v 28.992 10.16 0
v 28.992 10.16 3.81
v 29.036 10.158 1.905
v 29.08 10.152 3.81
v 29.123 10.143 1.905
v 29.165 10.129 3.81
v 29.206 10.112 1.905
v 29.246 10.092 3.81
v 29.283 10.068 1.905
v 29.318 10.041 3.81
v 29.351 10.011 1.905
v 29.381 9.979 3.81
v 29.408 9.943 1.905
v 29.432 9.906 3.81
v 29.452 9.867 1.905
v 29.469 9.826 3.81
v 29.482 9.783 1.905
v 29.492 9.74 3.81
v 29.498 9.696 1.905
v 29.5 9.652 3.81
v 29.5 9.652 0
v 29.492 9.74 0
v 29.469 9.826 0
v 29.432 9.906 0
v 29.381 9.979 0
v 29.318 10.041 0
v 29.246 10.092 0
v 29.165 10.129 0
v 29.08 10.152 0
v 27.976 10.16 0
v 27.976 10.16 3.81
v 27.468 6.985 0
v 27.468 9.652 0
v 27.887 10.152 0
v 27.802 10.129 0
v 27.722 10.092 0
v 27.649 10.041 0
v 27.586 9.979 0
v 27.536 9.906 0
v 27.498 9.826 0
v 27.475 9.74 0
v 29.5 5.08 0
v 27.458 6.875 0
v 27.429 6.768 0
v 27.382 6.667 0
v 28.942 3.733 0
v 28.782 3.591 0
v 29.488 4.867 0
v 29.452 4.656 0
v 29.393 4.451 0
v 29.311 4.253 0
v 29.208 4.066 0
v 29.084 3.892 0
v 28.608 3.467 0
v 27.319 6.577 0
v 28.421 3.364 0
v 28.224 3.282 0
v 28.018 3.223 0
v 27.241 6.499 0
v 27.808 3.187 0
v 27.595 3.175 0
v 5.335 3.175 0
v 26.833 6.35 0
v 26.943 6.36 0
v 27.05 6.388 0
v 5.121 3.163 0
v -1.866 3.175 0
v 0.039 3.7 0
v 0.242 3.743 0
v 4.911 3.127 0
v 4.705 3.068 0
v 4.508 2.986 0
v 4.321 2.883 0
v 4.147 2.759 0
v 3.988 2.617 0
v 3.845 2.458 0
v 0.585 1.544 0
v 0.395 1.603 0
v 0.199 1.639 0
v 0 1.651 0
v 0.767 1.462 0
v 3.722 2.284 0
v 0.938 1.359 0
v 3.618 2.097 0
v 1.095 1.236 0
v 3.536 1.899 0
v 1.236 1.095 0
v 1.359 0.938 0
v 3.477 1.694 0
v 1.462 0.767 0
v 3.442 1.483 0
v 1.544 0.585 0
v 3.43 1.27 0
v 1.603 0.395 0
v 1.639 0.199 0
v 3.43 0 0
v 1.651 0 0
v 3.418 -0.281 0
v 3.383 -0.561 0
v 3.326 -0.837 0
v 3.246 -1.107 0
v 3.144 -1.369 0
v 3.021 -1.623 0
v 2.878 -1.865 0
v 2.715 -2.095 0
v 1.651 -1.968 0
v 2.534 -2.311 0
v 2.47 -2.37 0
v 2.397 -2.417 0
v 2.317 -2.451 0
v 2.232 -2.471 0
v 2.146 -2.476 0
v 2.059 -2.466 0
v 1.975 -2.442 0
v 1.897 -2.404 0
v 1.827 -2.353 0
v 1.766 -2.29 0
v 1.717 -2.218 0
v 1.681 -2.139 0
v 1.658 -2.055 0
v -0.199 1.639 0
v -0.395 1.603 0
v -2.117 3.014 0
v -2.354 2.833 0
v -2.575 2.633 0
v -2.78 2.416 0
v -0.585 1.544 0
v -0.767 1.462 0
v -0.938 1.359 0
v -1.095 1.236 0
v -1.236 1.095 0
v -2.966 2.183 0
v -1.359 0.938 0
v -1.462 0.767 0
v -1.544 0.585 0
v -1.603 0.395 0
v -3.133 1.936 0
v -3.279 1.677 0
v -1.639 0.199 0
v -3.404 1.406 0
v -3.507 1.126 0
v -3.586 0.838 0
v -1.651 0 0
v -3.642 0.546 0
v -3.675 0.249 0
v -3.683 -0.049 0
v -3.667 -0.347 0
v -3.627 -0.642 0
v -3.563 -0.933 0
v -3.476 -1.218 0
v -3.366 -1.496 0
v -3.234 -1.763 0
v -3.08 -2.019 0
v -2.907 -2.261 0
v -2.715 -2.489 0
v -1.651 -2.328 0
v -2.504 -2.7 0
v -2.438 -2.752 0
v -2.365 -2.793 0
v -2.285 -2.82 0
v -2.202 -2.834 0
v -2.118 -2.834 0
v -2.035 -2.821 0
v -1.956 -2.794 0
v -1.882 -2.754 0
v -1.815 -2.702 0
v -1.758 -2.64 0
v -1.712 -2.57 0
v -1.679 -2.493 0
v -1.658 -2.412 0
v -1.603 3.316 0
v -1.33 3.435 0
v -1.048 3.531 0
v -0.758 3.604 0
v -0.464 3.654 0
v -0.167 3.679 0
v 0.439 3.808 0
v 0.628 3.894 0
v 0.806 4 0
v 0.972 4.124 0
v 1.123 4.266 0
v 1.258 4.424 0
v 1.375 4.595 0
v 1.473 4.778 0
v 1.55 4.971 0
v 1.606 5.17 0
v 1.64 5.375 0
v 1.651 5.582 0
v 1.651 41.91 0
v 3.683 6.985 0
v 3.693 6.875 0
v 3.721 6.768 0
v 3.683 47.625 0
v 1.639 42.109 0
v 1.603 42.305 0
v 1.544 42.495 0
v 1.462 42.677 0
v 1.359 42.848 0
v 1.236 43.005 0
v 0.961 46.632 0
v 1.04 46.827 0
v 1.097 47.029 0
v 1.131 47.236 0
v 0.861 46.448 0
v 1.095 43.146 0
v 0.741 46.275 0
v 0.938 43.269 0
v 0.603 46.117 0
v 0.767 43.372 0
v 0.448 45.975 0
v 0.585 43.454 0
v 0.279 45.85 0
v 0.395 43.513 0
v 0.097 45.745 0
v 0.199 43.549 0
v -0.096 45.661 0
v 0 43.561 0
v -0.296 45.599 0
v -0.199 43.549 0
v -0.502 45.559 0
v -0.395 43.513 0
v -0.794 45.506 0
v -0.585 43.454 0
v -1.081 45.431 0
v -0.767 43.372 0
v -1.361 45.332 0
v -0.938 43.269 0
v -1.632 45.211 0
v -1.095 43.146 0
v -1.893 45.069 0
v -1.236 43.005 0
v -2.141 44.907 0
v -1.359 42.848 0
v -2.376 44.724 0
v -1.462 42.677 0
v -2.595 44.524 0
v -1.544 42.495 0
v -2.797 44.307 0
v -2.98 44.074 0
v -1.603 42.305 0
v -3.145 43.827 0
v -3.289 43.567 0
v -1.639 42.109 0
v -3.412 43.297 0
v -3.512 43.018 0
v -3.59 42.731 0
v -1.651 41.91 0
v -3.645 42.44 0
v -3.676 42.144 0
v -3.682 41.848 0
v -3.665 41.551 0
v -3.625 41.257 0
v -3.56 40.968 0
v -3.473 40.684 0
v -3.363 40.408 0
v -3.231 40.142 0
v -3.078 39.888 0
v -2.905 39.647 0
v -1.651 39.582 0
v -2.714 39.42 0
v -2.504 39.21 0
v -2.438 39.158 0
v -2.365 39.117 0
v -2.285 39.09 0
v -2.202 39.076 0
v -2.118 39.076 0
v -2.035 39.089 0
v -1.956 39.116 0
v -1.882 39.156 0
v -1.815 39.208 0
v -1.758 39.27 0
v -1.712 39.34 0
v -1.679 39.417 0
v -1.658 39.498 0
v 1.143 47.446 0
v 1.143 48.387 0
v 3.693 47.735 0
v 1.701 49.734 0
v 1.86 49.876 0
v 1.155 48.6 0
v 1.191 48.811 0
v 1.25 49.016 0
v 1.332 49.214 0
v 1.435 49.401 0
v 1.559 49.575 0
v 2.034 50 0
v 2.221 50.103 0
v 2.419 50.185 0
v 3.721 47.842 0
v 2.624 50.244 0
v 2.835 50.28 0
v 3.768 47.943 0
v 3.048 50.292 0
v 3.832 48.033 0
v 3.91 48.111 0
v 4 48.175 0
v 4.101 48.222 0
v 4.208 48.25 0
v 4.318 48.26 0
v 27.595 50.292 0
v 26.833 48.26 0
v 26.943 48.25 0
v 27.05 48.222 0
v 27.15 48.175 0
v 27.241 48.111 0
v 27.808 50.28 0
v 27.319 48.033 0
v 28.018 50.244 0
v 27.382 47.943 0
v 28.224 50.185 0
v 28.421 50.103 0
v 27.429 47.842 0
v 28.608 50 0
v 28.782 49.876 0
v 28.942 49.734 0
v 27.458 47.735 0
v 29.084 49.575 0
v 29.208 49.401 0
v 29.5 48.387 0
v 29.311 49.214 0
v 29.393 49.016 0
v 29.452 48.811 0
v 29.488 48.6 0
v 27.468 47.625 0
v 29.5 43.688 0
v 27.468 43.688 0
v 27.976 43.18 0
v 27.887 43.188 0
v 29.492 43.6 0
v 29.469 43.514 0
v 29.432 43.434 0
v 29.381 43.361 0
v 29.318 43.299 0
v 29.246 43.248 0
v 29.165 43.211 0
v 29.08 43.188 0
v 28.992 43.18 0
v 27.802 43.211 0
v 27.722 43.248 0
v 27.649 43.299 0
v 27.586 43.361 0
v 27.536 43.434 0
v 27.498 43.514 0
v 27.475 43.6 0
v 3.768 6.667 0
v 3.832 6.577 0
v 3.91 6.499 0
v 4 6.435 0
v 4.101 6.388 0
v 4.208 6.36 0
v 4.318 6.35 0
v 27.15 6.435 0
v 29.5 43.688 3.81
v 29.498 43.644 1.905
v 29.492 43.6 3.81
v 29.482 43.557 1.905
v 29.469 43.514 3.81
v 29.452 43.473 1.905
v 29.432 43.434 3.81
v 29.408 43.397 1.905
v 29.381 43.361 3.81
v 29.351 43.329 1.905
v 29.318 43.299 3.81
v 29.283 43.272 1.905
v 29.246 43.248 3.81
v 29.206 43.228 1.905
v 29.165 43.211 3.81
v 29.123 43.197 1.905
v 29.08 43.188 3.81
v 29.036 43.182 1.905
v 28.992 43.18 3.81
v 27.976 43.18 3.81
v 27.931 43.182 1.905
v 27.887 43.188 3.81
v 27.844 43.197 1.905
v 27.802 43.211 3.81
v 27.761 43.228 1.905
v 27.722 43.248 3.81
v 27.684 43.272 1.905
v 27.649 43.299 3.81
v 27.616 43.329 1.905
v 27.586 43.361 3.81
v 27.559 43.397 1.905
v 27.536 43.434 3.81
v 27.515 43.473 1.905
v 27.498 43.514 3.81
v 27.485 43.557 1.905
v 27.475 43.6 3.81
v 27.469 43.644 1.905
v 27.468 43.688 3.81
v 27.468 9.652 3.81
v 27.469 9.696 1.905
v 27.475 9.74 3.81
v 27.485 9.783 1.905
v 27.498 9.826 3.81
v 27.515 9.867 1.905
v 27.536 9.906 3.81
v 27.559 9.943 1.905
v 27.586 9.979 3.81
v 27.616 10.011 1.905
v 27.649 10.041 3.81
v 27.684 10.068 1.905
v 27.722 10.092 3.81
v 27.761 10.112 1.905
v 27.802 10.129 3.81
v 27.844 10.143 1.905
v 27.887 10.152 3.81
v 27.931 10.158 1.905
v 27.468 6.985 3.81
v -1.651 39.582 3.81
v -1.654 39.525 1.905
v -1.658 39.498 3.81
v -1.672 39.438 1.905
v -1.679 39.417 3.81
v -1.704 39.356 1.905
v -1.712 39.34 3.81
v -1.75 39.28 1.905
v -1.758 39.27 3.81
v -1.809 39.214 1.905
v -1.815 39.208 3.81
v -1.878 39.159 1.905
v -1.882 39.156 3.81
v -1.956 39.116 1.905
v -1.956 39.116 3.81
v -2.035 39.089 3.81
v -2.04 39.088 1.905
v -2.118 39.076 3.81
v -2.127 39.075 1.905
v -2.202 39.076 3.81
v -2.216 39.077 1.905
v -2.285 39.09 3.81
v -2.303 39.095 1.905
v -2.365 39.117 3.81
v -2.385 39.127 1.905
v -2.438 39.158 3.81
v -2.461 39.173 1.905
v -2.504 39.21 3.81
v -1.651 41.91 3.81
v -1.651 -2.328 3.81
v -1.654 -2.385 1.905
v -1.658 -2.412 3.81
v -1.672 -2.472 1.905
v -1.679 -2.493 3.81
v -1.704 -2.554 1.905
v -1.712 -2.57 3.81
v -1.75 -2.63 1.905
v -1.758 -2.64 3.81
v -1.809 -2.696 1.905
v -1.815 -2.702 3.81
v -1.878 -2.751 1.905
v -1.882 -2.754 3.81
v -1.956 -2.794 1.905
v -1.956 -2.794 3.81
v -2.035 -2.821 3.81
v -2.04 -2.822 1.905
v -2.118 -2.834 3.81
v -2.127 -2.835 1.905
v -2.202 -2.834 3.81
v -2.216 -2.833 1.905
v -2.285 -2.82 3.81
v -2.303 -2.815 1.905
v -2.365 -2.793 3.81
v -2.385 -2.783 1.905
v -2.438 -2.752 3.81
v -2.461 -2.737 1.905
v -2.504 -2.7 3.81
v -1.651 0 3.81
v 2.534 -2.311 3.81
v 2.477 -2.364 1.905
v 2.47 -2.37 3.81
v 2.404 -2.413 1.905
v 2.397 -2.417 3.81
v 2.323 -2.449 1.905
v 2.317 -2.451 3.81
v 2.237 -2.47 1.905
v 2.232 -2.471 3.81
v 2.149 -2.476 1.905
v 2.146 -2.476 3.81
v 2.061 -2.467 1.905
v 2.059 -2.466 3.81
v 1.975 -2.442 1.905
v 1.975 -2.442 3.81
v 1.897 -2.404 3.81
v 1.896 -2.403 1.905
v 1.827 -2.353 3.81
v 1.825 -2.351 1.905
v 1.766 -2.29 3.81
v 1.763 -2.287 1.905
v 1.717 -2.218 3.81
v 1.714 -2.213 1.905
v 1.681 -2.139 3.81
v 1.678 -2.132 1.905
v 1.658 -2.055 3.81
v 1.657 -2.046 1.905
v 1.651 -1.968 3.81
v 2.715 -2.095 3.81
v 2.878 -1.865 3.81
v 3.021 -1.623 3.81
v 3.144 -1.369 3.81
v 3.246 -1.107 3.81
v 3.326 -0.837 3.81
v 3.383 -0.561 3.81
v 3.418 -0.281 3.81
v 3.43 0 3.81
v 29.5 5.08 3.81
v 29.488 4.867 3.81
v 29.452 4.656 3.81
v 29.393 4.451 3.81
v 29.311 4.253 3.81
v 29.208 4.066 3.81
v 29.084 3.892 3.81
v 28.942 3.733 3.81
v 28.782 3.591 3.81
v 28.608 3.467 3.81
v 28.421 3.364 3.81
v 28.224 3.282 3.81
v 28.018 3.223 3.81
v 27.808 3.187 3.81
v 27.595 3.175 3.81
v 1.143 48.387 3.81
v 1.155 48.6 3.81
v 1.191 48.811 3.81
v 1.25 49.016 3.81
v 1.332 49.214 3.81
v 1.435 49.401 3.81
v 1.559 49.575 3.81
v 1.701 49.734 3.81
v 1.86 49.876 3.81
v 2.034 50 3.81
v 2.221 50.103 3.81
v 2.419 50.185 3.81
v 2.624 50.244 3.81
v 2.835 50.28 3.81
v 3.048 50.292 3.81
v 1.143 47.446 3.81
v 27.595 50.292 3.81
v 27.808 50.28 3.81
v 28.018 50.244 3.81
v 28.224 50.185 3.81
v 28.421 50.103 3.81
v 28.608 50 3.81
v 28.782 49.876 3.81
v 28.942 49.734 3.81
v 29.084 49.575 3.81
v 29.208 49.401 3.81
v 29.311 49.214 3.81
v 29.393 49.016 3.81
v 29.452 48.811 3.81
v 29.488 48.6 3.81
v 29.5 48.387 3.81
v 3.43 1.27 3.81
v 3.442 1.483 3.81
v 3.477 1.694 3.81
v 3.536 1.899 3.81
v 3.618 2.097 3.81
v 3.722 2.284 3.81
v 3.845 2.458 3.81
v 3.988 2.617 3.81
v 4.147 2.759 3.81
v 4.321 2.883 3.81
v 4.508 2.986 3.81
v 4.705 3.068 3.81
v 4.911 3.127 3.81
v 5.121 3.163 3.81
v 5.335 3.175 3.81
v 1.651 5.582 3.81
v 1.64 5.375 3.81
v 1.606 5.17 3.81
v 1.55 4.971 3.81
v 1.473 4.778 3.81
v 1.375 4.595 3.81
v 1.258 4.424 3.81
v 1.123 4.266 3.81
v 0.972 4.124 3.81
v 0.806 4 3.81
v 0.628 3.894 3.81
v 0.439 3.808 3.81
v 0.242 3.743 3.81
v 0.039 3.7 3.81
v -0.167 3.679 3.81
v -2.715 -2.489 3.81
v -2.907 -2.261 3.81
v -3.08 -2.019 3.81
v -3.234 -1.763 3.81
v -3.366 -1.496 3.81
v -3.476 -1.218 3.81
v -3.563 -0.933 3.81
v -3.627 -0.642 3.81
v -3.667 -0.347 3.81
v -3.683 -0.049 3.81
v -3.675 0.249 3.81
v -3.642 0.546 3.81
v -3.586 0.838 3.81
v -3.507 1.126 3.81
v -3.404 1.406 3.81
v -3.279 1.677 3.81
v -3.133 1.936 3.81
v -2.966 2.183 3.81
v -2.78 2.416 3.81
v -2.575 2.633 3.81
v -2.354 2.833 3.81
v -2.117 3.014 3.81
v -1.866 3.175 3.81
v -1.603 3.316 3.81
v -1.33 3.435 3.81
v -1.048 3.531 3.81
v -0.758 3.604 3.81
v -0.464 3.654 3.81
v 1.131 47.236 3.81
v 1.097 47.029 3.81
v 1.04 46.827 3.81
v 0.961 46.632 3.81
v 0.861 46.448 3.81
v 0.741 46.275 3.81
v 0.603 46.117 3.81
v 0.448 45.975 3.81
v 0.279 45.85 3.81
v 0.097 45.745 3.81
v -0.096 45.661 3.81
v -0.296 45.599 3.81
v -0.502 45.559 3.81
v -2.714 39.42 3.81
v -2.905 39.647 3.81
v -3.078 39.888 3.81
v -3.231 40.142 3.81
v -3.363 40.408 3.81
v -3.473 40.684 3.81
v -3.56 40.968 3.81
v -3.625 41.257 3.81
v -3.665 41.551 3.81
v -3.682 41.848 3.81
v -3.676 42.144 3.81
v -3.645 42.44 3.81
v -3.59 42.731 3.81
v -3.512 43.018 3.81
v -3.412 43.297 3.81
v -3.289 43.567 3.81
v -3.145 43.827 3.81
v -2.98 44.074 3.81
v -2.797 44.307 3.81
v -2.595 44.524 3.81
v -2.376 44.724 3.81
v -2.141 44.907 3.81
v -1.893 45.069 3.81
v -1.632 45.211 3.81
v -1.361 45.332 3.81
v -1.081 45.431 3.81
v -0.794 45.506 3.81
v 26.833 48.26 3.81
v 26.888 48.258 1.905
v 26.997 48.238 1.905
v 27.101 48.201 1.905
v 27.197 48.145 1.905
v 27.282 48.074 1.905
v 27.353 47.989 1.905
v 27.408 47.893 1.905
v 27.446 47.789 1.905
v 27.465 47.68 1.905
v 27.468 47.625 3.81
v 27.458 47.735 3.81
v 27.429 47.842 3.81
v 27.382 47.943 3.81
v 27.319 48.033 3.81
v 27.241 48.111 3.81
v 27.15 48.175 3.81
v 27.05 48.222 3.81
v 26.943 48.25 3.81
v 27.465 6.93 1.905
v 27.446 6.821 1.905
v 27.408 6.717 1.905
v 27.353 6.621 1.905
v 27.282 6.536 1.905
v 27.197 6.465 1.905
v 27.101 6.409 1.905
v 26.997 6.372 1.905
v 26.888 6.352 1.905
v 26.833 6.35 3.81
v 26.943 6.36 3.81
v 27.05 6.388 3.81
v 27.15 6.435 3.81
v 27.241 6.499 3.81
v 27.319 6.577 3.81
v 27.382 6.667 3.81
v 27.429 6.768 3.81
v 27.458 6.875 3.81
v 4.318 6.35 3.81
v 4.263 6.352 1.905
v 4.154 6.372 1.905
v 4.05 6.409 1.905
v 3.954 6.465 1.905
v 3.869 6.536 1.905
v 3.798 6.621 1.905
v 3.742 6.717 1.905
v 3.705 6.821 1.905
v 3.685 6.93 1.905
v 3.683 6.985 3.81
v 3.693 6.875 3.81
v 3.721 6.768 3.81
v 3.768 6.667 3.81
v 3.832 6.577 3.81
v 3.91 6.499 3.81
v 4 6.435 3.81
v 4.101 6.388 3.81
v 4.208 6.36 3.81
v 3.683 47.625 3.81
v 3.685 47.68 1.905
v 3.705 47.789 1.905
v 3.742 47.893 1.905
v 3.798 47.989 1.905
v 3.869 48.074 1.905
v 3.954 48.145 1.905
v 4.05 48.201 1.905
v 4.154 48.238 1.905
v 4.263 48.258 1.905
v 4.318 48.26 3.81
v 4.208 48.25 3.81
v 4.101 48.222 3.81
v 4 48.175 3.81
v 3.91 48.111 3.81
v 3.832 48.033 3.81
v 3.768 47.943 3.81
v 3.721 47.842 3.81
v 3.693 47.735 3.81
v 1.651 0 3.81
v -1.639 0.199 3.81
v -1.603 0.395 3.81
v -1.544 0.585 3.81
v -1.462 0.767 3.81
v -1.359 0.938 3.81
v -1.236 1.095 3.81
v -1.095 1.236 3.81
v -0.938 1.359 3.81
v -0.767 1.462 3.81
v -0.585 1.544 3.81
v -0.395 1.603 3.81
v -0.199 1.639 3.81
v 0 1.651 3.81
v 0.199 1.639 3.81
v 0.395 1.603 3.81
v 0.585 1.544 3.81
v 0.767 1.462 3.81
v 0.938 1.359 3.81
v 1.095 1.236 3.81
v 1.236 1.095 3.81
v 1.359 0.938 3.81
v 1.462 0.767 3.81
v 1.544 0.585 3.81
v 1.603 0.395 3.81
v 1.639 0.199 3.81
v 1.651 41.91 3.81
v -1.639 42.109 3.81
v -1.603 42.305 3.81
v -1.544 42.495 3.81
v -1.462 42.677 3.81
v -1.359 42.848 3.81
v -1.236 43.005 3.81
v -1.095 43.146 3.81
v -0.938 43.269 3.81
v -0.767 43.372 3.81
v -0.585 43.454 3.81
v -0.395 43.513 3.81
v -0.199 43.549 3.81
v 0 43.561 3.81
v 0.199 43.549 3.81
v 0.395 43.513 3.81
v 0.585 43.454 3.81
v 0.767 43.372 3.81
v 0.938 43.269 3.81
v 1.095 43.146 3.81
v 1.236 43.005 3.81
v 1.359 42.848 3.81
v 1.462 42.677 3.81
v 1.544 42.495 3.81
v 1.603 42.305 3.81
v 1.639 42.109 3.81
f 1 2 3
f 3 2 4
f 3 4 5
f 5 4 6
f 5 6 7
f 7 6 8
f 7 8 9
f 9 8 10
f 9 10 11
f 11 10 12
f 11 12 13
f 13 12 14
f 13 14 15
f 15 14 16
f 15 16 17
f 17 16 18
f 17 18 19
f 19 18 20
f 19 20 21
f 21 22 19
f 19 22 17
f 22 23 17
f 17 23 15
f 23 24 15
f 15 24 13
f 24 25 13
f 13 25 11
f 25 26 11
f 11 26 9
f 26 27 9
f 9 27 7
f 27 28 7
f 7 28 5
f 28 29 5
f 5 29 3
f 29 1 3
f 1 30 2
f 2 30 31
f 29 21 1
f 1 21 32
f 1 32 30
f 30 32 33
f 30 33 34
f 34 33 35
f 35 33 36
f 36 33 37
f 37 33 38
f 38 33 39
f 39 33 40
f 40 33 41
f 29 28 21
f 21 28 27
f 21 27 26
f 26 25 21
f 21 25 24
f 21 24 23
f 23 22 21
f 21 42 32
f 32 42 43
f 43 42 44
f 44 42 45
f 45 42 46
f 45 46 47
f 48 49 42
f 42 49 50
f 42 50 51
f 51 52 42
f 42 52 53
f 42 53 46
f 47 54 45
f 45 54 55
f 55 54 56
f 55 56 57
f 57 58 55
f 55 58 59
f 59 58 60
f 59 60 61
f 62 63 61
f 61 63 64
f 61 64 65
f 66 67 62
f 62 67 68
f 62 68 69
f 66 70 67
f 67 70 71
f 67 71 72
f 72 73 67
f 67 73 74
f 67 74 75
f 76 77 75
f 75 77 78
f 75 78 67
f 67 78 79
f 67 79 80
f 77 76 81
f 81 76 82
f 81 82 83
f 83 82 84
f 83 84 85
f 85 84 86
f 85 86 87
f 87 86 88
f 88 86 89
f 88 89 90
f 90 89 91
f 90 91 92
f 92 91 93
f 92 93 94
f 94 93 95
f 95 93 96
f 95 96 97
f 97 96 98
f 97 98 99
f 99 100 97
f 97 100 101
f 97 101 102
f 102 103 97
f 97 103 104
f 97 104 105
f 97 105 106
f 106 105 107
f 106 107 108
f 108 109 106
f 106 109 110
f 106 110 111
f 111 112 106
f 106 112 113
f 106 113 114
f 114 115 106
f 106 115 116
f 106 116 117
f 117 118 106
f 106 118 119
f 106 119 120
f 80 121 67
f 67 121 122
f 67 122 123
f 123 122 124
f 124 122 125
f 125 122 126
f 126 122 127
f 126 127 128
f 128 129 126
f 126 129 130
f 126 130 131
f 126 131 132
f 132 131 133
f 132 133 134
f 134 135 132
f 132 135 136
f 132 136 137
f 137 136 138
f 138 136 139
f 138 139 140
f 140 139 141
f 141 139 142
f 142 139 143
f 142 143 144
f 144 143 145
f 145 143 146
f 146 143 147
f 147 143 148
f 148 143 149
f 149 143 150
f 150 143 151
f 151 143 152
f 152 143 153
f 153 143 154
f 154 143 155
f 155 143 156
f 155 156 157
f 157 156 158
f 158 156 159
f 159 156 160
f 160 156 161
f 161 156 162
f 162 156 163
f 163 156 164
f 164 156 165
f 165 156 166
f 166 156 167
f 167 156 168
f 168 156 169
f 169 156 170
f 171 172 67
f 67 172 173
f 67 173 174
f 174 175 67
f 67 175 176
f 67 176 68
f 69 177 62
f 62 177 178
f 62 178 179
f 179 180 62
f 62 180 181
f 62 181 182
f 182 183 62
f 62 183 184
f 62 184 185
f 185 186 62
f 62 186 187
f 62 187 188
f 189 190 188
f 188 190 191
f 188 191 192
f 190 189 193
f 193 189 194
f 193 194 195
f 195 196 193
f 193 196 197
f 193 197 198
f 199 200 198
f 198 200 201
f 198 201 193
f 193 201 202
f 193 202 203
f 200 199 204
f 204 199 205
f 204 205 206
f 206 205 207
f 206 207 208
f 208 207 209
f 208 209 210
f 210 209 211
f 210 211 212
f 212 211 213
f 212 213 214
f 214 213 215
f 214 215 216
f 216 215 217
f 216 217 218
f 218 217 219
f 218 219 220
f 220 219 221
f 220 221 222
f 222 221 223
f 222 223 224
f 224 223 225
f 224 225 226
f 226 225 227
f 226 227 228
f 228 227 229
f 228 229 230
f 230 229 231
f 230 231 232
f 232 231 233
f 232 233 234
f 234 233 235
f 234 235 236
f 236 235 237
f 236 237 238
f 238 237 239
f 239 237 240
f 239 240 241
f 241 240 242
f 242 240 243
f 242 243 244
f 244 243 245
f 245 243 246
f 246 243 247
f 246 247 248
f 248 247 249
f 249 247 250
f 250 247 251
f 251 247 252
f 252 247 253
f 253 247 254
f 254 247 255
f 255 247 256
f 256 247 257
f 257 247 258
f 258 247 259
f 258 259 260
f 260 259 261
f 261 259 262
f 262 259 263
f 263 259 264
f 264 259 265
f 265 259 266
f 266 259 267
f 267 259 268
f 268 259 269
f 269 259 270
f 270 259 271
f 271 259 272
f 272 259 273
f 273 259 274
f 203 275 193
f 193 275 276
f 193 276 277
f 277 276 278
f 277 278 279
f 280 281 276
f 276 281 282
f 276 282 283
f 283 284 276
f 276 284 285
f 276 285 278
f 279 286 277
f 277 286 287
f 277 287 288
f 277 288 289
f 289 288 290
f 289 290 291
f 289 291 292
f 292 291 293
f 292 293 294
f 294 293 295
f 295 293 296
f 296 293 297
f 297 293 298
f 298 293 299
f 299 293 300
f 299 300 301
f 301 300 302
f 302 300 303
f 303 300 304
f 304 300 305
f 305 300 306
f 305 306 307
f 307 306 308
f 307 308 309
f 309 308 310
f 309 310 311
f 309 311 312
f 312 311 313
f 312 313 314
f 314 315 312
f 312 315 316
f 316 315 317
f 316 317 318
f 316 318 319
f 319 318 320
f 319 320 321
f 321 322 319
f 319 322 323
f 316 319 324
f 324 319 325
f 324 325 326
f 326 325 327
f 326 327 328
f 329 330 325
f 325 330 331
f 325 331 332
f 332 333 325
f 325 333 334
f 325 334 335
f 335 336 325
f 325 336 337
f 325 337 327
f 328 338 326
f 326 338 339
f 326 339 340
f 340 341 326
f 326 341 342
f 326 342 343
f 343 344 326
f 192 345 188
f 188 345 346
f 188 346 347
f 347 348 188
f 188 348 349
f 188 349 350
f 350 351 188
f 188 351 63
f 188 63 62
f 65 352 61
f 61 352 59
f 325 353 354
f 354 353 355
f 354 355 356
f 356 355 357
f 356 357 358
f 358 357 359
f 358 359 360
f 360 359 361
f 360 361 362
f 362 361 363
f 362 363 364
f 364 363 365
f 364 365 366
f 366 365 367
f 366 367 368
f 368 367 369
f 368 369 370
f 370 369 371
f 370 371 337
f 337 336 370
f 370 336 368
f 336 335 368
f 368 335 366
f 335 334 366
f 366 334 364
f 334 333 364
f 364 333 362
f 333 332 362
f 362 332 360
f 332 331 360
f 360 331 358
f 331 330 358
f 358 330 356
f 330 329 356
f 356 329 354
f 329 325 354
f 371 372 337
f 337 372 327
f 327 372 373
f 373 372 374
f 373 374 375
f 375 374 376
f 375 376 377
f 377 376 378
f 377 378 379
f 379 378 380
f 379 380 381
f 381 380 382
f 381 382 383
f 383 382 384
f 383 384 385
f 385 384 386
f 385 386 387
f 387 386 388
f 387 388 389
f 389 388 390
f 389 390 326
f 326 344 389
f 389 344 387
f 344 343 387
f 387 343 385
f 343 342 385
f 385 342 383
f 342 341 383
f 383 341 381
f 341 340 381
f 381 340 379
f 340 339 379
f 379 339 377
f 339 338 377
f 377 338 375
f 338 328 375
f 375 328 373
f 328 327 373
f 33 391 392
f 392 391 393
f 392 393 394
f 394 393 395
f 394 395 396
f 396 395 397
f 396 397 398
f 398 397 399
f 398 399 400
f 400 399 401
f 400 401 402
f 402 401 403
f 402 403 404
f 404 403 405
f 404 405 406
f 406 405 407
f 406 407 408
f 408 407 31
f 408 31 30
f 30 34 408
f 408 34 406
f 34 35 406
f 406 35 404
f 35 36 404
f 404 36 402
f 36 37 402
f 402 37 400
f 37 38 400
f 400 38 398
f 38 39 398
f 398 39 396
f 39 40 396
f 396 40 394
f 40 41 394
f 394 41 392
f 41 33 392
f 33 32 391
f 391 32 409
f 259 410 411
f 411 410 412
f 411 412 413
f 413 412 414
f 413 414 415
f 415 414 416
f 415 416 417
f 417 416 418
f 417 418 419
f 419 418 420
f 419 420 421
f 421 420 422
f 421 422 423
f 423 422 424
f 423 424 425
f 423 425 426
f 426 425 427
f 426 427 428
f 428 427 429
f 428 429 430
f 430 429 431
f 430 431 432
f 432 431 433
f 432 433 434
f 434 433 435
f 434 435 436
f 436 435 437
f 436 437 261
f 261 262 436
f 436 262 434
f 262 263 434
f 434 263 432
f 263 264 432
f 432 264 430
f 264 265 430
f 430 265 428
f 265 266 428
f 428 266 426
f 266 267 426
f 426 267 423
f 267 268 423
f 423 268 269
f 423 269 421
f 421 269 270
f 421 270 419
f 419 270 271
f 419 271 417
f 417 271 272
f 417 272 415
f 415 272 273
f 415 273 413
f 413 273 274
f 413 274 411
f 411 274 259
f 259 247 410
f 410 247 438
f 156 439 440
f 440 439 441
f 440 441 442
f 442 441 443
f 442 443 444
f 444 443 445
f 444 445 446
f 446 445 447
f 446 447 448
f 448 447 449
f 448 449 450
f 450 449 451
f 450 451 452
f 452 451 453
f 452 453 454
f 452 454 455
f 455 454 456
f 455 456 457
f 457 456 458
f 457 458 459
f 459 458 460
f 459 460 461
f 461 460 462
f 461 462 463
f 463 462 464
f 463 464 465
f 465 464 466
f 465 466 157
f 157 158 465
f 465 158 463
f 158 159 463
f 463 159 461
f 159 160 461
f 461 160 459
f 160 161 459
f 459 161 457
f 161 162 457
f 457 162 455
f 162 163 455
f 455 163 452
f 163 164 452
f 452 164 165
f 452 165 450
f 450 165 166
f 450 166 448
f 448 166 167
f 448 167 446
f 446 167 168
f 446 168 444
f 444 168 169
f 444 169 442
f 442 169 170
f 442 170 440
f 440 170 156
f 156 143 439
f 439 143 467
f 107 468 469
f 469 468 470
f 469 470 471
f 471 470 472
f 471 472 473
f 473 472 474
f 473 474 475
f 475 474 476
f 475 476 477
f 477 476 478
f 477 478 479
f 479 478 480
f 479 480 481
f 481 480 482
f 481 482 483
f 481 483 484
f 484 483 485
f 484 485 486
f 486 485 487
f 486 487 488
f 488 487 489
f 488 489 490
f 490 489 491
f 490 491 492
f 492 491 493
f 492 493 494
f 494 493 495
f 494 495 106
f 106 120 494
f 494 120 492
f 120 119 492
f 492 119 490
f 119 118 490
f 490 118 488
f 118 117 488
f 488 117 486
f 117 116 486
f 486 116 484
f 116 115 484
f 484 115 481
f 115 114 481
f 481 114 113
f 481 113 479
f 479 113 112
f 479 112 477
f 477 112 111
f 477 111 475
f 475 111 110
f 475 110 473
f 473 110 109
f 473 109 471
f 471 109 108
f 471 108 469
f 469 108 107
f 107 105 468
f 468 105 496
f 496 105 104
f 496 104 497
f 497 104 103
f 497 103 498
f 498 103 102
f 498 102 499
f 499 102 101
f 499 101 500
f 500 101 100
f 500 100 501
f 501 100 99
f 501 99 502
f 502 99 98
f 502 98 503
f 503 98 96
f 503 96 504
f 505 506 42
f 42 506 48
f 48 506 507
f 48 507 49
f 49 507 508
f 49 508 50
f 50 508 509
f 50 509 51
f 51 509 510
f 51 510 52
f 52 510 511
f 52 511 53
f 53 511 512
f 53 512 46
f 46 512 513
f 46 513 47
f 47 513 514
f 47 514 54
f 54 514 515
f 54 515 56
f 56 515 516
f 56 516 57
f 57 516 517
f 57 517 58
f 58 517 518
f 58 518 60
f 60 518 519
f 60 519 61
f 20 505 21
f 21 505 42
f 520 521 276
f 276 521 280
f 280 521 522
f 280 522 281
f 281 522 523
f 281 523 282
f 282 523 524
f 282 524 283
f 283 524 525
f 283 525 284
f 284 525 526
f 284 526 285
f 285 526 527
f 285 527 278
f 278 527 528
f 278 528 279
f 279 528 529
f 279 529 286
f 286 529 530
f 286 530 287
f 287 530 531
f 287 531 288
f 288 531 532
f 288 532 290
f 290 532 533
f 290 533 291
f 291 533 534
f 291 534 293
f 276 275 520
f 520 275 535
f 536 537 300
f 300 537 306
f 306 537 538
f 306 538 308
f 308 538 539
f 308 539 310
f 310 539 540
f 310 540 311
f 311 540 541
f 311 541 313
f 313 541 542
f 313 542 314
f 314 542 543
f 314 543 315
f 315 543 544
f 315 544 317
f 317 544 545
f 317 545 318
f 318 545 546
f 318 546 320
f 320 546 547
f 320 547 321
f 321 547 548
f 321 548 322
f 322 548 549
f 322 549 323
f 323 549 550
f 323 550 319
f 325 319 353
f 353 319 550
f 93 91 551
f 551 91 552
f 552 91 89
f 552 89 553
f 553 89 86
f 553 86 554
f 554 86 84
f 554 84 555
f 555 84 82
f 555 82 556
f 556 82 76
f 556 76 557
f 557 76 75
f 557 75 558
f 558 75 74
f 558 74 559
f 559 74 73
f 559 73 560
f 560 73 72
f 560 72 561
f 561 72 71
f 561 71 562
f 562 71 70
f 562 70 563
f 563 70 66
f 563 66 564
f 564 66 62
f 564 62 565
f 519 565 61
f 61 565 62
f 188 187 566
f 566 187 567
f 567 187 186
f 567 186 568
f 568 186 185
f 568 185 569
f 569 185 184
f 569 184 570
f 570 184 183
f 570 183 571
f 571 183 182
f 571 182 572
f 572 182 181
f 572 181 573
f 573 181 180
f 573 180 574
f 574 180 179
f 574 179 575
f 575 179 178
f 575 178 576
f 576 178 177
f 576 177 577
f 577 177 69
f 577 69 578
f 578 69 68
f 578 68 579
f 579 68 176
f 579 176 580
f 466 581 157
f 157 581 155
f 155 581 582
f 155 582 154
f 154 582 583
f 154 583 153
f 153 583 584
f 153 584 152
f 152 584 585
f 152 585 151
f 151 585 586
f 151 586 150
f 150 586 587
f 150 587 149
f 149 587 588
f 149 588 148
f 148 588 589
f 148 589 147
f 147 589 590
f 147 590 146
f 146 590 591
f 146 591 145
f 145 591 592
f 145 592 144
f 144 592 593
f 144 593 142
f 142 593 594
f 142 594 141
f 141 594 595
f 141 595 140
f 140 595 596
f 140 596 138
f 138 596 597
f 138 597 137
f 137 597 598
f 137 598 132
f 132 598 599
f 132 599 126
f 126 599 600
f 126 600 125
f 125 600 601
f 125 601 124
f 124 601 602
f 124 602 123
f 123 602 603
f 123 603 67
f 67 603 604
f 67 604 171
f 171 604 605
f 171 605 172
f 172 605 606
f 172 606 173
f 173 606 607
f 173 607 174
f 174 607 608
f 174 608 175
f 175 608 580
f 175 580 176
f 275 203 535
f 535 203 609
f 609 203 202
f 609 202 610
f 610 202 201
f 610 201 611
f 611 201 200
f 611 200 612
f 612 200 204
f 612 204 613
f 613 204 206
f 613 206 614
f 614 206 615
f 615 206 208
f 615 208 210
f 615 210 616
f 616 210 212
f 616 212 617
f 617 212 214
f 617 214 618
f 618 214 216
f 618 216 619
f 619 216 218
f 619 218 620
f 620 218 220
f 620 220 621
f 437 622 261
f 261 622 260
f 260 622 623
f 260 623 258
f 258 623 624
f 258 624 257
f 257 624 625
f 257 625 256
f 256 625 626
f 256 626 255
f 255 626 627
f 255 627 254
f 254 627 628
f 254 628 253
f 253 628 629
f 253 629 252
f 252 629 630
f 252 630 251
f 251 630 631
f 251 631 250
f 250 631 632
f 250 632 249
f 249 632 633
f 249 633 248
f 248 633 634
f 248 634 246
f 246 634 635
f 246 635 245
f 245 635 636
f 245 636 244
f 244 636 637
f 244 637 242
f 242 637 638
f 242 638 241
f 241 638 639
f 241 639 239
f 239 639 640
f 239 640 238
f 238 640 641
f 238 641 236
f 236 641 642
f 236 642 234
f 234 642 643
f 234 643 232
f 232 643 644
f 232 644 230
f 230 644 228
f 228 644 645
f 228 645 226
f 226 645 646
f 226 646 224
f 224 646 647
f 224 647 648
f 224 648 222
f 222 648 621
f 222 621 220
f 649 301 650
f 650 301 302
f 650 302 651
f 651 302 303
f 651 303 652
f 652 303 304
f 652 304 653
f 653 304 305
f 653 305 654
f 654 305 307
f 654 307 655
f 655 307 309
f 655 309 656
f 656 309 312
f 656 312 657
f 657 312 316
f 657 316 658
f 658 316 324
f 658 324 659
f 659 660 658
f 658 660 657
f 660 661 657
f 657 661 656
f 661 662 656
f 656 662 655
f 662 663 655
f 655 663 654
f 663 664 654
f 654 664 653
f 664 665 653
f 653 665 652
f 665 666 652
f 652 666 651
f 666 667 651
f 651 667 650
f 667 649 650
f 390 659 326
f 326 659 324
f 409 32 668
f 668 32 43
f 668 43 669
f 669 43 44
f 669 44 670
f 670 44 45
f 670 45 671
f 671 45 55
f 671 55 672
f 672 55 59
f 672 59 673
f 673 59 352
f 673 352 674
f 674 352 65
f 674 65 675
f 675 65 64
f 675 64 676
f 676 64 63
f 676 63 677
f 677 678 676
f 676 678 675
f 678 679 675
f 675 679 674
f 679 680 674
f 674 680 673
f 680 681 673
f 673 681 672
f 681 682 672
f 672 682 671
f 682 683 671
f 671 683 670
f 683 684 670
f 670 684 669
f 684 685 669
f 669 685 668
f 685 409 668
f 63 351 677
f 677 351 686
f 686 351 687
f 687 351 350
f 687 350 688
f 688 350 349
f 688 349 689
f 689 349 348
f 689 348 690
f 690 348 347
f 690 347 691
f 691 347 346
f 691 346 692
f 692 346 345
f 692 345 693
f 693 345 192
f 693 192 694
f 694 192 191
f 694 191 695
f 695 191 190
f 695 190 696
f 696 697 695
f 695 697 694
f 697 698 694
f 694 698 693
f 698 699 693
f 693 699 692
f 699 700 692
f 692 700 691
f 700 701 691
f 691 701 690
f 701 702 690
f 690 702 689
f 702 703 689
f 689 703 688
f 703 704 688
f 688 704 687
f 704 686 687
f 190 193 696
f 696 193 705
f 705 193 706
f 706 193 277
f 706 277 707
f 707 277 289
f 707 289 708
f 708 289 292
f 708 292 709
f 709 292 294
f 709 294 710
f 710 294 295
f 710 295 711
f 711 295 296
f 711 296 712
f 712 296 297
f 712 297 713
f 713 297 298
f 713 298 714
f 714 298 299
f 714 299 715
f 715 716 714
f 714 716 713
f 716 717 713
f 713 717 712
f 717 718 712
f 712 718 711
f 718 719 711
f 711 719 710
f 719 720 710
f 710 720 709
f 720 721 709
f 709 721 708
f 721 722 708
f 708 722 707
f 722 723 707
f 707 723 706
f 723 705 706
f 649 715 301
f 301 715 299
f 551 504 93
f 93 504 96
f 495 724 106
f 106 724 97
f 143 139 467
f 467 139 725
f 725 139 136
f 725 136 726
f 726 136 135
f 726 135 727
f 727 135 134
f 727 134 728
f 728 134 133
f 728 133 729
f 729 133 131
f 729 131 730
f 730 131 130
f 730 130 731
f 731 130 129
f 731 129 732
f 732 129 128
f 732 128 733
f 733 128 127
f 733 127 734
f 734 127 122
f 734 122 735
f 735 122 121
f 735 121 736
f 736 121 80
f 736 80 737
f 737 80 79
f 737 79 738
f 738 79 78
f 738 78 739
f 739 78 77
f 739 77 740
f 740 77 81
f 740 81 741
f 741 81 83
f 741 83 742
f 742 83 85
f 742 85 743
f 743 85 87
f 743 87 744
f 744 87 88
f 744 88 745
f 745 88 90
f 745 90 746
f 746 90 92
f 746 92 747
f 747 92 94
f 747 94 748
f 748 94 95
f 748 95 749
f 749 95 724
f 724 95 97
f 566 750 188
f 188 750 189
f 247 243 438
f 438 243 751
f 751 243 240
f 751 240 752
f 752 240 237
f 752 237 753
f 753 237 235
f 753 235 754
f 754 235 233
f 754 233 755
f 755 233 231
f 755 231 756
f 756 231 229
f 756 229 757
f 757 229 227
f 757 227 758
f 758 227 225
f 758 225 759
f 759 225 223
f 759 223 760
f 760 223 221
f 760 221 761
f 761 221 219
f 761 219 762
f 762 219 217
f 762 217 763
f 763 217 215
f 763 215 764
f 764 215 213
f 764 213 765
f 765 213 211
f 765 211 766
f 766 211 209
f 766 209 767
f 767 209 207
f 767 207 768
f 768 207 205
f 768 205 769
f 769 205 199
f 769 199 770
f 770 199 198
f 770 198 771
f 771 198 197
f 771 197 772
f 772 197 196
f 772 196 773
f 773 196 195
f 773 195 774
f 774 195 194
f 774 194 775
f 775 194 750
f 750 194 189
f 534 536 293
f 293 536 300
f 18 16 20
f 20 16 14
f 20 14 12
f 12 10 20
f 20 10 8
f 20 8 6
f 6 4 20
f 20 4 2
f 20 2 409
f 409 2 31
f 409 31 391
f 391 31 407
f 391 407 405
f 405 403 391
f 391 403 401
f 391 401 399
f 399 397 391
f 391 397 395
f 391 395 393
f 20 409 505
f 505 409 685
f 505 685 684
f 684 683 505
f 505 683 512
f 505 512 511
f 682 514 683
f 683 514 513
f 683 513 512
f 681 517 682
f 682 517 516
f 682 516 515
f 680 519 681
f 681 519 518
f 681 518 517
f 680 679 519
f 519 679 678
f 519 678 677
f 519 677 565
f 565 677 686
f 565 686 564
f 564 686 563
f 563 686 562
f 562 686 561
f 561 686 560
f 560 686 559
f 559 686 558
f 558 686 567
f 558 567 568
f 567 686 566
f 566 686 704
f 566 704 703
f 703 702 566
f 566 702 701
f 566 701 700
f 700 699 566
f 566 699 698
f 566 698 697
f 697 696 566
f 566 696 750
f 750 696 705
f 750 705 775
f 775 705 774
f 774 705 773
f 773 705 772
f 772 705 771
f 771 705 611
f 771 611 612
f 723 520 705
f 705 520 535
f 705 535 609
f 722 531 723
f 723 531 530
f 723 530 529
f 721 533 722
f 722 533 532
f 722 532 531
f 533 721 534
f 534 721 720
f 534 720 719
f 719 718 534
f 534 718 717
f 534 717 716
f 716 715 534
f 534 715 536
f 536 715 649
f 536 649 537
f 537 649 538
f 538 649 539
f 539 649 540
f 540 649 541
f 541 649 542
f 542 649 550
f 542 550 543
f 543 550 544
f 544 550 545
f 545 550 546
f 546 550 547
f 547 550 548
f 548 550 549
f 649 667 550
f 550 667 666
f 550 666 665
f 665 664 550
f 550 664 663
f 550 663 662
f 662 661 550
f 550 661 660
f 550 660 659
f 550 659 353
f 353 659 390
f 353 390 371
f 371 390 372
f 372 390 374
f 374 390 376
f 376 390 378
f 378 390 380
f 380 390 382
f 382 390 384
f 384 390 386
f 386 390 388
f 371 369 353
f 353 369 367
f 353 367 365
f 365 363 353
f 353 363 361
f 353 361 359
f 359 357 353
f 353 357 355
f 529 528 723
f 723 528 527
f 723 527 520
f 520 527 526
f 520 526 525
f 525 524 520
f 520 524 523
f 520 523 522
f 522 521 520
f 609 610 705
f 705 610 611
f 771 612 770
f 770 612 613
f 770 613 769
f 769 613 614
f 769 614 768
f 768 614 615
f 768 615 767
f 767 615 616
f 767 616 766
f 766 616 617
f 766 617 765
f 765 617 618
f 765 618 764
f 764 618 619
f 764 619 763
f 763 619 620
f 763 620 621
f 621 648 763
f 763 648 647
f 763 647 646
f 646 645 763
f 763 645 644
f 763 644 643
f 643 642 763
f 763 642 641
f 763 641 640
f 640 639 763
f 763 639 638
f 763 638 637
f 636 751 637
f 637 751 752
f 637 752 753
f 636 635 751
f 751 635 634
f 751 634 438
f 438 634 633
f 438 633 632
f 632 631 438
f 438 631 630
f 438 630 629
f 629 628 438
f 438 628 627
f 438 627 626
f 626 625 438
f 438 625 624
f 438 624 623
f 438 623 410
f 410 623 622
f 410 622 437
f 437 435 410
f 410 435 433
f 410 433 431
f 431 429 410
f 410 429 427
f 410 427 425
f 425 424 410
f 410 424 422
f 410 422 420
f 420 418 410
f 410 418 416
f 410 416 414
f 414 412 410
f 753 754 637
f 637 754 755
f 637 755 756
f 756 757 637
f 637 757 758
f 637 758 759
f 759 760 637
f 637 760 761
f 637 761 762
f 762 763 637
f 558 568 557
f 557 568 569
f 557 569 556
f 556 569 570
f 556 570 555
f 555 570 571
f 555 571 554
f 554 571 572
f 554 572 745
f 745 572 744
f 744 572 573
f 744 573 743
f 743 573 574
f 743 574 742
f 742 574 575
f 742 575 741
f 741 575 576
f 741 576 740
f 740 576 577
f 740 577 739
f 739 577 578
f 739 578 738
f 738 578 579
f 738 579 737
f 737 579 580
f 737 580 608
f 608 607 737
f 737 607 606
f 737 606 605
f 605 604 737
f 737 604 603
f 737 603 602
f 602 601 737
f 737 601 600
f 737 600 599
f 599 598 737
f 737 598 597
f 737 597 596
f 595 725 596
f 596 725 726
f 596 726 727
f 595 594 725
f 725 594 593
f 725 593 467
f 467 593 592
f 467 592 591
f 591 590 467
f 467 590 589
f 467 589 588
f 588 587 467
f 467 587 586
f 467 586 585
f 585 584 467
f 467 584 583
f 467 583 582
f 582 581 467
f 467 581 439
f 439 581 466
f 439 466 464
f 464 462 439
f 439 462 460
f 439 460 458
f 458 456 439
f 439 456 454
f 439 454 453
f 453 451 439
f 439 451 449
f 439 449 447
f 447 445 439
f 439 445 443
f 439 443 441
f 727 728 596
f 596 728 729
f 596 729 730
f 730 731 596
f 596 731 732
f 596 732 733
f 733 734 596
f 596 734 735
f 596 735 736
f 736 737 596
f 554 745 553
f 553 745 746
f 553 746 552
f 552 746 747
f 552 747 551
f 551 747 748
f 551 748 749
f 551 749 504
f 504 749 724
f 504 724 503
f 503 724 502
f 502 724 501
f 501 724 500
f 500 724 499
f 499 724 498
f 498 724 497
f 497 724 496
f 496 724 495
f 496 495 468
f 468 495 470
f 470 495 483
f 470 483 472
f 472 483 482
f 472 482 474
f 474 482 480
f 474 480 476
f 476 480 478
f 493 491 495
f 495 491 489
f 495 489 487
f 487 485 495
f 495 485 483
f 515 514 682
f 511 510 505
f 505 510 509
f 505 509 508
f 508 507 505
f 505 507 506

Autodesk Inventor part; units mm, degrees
ref_plane "YZ Plane" through (0, 0, 0) normal (1, 0, 0) x (0, 1, 0)
ref_plane "XZ Plane" through (0, 0, 0) normal (0, 1, 0) x (-1, 0, 0)
ref_plane "XY Plane" through (0, 0, 0) normal (0, 0, 1) x (1, 0, 0)
sketch "Sketch1" plane through (0, 0, 0) normal (0, 0, 1) x (1, 0, 0)
  arc A0 (1.651, 0) -> (-1.651, 0) centre (0, 0) ccw
  arc A1 (1.651, 41.91) -> (-1.651, 41.91) centre (0, 41.91) ccw
  arc A2 (1.143, 45.4111) -> (-1.651, 38.6178) centre (0, 41.91) ccw
  line L0 (3.683, 48.26) -> (27.4676, 48.26)
  line L1 (27.4676, 6.35) -> (3.683, 6.35)
  line L2 (3.683, 6.35) -> (3.683, 48.26)
  line L3 (3.4296, 3.175) -> (3.4296, 0)
  line L4 (1.651, 38.904) -> (1.651, 3.2922)
  line L5 (1.143, 45.4111) -> (1.143, 50.292)
  line L6 (1.143, 50.292) -> (29.4996, 50.292)
  line L7 (29.4996, 50.292) -> (29.4996, 43.18)
  line L8 (29.4996, 43.18) -> (27.4676, 43.18)
  line L9 (3.4296, 3.175) -> (29.4996, 3.175)
  line L10 (29.4996, 3.175) -> (29.4996, 10.16)
  line L11 (29.4996, 10.16) -> (27.4676, 10.16)
  line L12 (27.4676, 48.26) -> (27.4676, 43.18)
  line L13 (27.4676, 10.16) -> (27.4676, 6.35)
  line L14 (1.651, 38.904) -> (1.651, 41.91)
  line L15 (-1.651, 41.91) -> (-1.651, 38.6178)
  line L16 (-1.651, 0) -> (-1.651, -3.2922)
  line L17 (1.651, 0) -> (1.651, -3.006)
  arc A3 (1.651, 3.2922) -> (-1.651, -3.2922) centre (0, 0) ccw
  arc A4 (1.651, -3.006) -> (3.4296, 0) centre (0, 0) ccw
  dimension "d0" = 3.302
  dimension "d2" = 41.91
  dimension "d4" = 6.35
  dimension "d5" = 6.35
  dimension "d6" = 3.683
  dimension "d7" = 2.54
  dimension "d8" = 2.032
  dimension "d9" = 2.032
  dimension "d10" = 5.08
  dimension "d11" = 3.81
  dimension "d12" = 3.175
  dimension "d13" = 2.032
extrude "Extrusion1" add sketch "Sketch1" along normal blind 3.81
fillet "Fillet1" radius 0.635 4 edges at (3.683, 48.26, 1.905) (3.683, 6.35, 1.905) (27.4676, 6.35, 1.905) (27.4676, 48.26, 1.905)
fillet "Fillet2" radius 1.905 6 edges at (1.143, 45.4111, 1.905) (1.651, 3.2922, 1.905) (3.4296, 3.175, 1.905) (29.4996, 50.292, 1.905) (1.143, 50.292, 1.905) (29.4996, 3.175, 1.905)
fillet "Fillet3" radius 0.508 3 edges at (1.651, -3.006, 1.905) (-1.651, -3.2922, 1.905) (-1.651, 38.6178, 1.905)
fillet "Fillet4" radius 0.508 4 edges at (27.4676, 10.16, 1.905) (27.4676, 43.18, 1.905) (29.4996, 43.18, 1.905) (29.4996, 10.16, 1.905)
properties part number "batteryHolderBracket" material "ABS Plastic"
